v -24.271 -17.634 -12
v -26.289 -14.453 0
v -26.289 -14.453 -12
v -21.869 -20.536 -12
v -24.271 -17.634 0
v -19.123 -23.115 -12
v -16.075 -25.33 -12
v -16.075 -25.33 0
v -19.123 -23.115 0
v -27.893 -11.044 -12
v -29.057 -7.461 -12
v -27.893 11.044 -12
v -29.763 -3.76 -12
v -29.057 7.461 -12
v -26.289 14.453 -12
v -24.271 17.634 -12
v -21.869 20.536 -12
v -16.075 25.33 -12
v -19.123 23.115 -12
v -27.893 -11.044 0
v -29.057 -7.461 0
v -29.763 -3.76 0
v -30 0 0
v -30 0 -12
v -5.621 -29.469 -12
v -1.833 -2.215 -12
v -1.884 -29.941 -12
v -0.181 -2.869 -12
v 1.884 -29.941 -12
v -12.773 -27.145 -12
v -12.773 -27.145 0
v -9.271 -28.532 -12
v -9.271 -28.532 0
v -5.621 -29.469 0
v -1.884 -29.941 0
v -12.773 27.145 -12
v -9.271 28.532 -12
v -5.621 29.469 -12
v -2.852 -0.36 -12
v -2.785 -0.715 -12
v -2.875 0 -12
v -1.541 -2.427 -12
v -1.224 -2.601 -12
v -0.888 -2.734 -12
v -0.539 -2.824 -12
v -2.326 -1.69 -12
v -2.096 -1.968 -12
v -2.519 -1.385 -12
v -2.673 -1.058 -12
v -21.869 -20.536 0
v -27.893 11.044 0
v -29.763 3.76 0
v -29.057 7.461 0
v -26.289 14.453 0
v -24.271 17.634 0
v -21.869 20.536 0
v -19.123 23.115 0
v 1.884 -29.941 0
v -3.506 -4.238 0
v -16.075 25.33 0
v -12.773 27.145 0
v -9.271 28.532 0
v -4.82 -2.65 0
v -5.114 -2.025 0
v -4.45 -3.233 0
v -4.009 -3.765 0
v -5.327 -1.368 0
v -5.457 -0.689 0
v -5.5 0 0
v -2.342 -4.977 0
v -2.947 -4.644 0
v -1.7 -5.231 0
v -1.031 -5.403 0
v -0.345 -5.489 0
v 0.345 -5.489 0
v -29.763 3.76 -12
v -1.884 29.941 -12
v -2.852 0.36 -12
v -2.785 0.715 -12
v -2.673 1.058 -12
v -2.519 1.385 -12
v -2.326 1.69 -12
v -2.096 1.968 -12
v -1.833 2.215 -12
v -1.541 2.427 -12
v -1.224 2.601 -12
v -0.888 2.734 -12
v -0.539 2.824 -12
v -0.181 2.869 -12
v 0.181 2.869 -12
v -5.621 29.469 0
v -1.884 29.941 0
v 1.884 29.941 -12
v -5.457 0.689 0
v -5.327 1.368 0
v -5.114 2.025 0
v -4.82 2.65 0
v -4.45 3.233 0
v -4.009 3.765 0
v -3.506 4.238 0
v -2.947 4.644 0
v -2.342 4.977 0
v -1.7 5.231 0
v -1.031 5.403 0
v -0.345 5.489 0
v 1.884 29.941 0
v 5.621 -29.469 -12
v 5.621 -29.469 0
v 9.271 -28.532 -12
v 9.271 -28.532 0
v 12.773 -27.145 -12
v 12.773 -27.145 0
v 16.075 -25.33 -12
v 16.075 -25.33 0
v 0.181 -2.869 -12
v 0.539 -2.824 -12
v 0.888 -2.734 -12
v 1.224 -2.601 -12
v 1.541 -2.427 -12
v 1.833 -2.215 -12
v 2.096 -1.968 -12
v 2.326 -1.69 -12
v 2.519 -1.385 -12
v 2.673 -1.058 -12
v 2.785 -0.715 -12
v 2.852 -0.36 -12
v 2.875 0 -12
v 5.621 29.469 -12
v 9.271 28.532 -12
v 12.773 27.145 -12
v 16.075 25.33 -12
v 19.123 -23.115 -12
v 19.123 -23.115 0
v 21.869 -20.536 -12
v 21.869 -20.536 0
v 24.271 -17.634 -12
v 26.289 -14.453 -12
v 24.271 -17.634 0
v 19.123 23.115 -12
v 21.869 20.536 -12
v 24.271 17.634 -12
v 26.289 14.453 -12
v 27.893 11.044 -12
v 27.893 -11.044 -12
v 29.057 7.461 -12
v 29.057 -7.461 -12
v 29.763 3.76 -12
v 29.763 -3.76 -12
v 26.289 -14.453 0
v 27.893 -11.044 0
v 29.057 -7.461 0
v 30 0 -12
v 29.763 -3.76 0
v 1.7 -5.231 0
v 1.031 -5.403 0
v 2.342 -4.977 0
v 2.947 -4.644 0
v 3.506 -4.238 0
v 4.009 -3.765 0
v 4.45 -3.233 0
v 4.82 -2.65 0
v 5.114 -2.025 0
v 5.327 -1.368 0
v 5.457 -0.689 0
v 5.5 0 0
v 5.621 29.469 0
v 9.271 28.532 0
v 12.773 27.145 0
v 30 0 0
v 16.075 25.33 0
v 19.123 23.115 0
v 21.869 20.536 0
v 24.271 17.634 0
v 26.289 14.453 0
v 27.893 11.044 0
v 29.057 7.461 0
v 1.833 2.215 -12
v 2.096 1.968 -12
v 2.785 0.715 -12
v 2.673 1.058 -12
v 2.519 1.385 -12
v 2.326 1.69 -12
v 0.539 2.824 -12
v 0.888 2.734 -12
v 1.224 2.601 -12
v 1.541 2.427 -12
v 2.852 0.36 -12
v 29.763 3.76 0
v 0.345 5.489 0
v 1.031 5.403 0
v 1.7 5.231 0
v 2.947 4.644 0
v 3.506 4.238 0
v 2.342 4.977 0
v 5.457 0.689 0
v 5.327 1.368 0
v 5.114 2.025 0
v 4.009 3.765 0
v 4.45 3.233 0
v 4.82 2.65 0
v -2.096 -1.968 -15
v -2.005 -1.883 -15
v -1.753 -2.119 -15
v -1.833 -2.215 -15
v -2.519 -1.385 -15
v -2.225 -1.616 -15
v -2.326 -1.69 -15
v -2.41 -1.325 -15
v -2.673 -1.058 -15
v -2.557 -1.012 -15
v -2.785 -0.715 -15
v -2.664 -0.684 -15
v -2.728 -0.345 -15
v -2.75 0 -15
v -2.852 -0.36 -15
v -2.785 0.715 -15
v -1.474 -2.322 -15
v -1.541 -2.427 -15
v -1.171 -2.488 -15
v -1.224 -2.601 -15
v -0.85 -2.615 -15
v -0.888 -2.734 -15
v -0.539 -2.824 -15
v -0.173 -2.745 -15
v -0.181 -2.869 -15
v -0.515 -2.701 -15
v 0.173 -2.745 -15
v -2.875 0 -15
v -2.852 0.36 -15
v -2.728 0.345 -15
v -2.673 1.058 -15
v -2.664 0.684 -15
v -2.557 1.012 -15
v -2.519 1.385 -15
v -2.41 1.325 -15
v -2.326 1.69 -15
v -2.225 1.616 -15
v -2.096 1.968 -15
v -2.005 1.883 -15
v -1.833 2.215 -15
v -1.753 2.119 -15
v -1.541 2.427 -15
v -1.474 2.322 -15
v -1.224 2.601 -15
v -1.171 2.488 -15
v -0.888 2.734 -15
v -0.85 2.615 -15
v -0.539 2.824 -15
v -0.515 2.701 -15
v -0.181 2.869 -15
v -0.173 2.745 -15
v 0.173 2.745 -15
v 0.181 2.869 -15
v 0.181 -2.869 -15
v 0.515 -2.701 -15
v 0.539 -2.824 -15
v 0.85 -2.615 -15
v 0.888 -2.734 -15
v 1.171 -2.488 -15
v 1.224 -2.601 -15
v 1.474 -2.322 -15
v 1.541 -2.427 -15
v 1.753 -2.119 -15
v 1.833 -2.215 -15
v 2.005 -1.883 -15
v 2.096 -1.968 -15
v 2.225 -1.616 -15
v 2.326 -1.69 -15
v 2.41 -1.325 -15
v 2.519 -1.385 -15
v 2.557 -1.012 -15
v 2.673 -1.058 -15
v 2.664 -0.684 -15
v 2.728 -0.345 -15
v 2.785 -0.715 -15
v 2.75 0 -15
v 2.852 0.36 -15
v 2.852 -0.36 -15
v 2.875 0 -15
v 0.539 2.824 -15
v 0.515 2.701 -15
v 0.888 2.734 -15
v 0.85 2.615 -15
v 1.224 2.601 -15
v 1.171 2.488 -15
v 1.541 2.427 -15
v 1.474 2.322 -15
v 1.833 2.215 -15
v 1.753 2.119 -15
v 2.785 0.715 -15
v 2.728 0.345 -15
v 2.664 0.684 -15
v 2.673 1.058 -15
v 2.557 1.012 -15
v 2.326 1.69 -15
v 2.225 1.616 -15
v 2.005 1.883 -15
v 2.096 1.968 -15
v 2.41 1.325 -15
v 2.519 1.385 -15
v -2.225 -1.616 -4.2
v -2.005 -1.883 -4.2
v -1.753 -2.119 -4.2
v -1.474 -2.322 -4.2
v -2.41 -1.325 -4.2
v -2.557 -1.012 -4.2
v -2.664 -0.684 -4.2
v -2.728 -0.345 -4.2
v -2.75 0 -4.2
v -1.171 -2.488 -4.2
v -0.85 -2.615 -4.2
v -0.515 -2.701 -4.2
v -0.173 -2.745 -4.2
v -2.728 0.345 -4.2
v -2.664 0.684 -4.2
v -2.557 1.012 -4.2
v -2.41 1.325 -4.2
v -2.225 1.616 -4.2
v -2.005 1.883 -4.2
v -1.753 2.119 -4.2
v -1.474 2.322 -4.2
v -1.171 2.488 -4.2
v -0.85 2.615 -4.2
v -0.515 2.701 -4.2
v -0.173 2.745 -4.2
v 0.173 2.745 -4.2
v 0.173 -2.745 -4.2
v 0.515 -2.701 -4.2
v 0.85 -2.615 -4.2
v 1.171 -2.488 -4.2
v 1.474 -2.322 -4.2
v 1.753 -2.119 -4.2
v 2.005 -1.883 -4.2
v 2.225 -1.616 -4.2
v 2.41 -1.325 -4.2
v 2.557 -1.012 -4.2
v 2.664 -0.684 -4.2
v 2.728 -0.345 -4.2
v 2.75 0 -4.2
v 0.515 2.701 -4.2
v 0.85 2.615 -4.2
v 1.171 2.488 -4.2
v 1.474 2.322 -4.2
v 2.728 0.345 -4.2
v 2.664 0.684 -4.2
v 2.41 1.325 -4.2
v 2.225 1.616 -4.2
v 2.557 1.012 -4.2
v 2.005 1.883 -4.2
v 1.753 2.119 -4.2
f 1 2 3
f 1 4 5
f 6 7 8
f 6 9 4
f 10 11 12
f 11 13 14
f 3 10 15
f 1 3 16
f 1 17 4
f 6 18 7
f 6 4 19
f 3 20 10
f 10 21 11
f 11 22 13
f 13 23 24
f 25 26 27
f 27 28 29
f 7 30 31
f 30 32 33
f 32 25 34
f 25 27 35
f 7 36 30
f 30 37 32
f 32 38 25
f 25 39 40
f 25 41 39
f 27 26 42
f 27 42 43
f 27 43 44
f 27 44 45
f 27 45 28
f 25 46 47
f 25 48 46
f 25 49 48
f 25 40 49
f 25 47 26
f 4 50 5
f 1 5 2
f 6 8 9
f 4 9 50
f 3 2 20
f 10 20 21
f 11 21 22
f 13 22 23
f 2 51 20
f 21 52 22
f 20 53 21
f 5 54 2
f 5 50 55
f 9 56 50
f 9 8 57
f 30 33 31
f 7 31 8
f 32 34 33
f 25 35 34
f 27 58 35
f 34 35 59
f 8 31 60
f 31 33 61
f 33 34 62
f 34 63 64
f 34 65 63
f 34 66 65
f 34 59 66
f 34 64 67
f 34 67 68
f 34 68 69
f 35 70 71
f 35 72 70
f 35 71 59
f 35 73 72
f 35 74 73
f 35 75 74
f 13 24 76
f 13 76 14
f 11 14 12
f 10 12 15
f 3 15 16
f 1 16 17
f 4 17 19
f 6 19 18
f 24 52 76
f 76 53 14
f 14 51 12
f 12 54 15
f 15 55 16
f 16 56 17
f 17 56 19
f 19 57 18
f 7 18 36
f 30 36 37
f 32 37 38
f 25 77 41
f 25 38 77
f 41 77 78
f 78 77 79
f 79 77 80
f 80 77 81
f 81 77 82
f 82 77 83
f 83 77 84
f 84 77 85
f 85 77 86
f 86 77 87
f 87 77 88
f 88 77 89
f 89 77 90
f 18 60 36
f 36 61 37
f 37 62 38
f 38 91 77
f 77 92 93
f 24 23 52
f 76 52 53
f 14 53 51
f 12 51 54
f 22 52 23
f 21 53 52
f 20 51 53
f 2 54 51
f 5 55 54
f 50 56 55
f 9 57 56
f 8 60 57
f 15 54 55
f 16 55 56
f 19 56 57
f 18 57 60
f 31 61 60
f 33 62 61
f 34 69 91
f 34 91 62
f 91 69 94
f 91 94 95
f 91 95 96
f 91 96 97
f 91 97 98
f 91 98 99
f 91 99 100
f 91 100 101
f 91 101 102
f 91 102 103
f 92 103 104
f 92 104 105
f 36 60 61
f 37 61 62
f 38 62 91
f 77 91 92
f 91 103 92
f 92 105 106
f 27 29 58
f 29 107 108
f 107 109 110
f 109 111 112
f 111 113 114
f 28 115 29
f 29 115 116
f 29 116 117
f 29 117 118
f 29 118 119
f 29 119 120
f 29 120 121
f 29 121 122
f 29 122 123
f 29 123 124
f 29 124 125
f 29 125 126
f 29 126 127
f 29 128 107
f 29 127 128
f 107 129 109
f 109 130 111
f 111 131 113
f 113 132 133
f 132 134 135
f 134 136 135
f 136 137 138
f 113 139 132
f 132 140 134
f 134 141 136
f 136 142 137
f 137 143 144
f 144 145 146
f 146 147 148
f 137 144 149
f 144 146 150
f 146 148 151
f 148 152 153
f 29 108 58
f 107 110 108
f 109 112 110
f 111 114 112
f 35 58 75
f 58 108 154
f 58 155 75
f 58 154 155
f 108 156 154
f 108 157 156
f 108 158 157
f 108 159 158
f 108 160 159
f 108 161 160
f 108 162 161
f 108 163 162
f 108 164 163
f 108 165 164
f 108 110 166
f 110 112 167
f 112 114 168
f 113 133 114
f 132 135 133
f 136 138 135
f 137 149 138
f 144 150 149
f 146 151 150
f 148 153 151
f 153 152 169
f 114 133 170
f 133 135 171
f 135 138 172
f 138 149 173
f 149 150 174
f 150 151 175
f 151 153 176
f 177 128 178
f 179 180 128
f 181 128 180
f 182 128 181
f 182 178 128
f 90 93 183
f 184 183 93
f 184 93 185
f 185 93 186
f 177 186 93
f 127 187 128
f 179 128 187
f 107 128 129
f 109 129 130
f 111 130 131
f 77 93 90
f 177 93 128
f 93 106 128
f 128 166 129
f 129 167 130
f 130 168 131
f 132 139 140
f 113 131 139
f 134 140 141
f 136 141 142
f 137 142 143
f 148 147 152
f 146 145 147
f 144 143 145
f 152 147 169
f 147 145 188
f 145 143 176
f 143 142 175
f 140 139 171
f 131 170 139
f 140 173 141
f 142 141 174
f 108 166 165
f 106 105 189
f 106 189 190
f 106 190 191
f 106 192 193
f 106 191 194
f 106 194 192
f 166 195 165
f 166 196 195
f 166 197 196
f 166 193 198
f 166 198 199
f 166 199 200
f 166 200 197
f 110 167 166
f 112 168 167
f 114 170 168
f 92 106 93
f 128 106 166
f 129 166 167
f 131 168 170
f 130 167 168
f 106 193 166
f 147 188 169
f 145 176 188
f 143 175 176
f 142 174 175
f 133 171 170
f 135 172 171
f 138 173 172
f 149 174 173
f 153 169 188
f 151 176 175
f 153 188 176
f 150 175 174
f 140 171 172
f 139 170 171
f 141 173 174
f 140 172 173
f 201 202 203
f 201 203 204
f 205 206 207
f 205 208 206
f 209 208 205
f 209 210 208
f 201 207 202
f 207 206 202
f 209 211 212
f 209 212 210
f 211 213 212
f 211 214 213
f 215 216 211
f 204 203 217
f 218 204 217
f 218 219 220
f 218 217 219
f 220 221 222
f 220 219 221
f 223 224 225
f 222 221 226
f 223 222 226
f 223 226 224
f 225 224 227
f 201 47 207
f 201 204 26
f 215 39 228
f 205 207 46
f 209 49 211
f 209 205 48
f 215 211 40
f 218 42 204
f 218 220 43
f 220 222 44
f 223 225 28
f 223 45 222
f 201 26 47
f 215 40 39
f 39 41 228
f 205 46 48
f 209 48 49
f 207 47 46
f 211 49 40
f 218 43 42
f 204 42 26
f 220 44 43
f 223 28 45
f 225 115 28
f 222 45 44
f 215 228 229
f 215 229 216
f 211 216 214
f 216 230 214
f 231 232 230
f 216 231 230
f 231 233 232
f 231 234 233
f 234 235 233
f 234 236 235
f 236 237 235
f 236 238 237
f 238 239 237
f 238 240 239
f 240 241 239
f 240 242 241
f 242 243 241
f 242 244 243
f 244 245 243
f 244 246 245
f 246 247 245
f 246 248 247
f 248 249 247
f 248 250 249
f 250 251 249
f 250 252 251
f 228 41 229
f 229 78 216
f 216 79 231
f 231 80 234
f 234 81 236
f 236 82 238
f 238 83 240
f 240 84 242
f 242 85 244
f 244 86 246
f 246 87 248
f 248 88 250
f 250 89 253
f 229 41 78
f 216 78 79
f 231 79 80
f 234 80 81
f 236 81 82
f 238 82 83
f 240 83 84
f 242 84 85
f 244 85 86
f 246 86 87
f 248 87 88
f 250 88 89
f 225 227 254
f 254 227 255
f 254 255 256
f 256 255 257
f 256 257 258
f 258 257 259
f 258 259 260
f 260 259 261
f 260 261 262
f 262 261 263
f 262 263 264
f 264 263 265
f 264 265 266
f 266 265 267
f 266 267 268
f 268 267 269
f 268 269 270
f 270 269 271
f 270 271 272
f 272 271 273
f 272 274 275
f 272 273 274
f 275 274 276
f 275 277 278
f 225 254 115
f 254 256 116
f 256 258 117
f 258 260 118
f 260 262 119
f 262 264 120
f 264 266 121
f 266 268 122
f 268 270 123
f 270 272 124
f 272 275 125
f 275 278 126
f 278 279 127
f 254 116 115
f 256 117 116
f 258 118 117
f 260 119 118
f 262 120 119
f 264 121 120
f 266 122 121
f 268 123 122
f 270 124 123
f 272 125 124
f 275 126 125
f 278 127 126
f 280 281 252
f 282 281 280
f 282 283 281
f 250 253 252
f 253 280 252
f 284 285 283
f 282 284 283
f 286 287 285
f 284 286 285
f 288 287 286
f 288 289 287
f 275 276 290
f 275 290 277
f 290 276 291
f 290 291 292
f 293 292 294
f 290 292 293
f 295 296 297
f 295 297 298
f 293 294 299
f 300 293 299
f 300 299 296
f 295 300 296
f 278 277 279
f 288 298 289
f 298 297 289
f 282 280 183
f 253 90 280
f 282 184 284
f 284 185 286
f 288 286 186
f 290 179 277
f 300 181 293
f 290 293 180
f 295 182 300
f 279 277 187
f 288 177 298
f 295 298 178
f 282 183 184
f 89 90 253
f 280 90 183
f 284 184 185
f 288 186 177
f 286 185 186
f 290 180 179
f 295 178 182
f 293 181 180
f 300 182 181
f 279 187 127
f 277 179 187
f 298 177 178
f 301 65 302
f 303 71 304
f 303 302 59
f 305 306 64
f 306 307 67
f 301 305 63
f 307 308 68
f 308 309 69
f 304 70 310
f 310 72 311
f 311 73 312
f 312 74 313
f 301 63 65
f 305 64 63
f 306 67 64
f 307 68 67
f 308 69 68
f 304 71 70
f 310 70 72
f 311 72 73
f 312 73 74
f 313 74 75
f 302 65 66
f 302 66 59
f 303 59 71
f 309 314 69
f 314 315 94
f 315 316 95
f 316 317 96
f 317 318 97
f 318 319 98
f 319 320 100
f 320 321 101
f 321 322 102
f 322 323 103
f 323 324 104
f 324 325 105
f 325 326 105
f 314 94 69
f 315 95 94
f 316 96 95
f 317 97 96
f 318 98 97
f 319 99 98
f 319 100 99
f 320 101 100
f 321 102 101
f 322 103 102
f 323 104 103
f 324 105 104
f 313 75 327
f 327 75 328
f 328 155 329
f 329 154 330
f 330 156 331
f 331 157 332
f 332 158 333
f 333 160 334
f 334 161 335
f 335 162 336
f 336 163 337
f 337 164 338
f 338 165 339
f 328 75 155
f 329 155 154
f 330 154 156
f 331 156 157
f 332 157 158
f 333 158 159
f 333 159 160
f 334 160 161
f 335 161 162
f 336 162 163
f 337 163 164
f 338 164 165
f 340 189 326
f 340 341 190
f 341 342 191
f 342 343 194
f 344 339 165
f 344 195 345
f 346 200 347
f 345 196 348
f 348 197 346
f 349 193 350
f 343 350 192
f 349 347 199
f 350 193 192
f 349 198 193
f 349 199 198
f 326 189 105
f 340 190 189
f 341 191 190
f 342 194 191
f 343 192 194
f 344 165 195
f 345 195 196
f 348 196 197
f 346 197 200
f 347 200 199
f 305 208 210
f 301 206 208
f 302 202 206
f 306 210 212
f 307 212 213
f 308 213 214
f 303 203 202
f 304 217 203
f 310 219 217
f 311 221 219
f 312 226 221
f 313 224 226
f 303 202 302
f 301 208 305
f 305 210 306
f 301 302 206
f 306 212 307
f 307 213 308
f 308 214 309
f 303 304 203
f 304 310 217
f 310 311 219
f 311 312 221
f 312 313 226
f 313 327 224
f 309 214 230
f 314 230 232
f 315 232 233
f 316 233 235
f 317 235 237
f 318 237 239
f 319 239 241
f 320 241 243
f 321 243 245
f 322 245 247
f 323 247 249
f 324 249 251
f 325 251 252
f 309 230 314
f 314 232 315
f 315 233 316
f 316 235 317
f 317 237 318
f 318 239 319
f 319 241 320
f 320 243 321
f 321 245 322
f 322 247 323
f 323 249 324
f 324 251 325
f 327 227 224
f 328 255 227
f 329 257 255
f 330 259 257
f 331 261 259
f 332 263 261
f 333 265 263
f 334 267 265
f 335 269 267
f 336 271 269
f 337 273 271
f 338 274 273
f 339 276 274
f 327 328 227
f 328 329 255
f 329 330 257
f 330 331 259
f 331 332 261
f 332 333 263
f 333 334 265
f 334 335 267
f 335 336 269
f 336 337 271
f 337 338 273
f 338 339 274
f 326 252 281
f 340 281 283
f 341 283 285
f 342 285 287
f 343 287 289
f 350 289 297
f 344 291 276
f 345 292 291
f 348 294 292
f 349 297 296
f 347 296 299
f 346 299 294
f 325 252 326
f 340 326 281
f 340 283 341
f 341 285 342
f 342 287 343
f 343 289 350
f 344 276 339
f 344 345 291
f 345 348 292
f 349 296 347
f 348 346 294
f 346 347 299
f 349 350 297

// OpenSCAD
$fn = 50;

difference() {
	union() {
		translate(v = [0, 0, -12.0]) {
			cylinder(h = 12, r = 30.0);
		}
		#translate(v = [0, 0, -15.0]) {
			cylinder(h = 15, r = 2.875);
		}
	}
	union() {
		translate(v = [0, 0, 0]) {
			rotate(a = [0, 0, 0]) {
				difference() {
					union() {
						translate(v = [0, 0, -15.0]) {
							cylinder(h = 15, r = 2.25);
						}
						translate(v = [0, 0, -4.2]) {
							cylinder(h = 4.2, r1 = 2.75, r2 = 5.5);
						}
						translate(v = [0, 0, -15.0]) {
							cylinder(h = 15, r = 2.75);
						}
						translate(v = [0, 0, -15.0]) {
							cylinder(h = 15, r = 2.25);
						}
					}
					union();
				}
			}
		}
	}
}
